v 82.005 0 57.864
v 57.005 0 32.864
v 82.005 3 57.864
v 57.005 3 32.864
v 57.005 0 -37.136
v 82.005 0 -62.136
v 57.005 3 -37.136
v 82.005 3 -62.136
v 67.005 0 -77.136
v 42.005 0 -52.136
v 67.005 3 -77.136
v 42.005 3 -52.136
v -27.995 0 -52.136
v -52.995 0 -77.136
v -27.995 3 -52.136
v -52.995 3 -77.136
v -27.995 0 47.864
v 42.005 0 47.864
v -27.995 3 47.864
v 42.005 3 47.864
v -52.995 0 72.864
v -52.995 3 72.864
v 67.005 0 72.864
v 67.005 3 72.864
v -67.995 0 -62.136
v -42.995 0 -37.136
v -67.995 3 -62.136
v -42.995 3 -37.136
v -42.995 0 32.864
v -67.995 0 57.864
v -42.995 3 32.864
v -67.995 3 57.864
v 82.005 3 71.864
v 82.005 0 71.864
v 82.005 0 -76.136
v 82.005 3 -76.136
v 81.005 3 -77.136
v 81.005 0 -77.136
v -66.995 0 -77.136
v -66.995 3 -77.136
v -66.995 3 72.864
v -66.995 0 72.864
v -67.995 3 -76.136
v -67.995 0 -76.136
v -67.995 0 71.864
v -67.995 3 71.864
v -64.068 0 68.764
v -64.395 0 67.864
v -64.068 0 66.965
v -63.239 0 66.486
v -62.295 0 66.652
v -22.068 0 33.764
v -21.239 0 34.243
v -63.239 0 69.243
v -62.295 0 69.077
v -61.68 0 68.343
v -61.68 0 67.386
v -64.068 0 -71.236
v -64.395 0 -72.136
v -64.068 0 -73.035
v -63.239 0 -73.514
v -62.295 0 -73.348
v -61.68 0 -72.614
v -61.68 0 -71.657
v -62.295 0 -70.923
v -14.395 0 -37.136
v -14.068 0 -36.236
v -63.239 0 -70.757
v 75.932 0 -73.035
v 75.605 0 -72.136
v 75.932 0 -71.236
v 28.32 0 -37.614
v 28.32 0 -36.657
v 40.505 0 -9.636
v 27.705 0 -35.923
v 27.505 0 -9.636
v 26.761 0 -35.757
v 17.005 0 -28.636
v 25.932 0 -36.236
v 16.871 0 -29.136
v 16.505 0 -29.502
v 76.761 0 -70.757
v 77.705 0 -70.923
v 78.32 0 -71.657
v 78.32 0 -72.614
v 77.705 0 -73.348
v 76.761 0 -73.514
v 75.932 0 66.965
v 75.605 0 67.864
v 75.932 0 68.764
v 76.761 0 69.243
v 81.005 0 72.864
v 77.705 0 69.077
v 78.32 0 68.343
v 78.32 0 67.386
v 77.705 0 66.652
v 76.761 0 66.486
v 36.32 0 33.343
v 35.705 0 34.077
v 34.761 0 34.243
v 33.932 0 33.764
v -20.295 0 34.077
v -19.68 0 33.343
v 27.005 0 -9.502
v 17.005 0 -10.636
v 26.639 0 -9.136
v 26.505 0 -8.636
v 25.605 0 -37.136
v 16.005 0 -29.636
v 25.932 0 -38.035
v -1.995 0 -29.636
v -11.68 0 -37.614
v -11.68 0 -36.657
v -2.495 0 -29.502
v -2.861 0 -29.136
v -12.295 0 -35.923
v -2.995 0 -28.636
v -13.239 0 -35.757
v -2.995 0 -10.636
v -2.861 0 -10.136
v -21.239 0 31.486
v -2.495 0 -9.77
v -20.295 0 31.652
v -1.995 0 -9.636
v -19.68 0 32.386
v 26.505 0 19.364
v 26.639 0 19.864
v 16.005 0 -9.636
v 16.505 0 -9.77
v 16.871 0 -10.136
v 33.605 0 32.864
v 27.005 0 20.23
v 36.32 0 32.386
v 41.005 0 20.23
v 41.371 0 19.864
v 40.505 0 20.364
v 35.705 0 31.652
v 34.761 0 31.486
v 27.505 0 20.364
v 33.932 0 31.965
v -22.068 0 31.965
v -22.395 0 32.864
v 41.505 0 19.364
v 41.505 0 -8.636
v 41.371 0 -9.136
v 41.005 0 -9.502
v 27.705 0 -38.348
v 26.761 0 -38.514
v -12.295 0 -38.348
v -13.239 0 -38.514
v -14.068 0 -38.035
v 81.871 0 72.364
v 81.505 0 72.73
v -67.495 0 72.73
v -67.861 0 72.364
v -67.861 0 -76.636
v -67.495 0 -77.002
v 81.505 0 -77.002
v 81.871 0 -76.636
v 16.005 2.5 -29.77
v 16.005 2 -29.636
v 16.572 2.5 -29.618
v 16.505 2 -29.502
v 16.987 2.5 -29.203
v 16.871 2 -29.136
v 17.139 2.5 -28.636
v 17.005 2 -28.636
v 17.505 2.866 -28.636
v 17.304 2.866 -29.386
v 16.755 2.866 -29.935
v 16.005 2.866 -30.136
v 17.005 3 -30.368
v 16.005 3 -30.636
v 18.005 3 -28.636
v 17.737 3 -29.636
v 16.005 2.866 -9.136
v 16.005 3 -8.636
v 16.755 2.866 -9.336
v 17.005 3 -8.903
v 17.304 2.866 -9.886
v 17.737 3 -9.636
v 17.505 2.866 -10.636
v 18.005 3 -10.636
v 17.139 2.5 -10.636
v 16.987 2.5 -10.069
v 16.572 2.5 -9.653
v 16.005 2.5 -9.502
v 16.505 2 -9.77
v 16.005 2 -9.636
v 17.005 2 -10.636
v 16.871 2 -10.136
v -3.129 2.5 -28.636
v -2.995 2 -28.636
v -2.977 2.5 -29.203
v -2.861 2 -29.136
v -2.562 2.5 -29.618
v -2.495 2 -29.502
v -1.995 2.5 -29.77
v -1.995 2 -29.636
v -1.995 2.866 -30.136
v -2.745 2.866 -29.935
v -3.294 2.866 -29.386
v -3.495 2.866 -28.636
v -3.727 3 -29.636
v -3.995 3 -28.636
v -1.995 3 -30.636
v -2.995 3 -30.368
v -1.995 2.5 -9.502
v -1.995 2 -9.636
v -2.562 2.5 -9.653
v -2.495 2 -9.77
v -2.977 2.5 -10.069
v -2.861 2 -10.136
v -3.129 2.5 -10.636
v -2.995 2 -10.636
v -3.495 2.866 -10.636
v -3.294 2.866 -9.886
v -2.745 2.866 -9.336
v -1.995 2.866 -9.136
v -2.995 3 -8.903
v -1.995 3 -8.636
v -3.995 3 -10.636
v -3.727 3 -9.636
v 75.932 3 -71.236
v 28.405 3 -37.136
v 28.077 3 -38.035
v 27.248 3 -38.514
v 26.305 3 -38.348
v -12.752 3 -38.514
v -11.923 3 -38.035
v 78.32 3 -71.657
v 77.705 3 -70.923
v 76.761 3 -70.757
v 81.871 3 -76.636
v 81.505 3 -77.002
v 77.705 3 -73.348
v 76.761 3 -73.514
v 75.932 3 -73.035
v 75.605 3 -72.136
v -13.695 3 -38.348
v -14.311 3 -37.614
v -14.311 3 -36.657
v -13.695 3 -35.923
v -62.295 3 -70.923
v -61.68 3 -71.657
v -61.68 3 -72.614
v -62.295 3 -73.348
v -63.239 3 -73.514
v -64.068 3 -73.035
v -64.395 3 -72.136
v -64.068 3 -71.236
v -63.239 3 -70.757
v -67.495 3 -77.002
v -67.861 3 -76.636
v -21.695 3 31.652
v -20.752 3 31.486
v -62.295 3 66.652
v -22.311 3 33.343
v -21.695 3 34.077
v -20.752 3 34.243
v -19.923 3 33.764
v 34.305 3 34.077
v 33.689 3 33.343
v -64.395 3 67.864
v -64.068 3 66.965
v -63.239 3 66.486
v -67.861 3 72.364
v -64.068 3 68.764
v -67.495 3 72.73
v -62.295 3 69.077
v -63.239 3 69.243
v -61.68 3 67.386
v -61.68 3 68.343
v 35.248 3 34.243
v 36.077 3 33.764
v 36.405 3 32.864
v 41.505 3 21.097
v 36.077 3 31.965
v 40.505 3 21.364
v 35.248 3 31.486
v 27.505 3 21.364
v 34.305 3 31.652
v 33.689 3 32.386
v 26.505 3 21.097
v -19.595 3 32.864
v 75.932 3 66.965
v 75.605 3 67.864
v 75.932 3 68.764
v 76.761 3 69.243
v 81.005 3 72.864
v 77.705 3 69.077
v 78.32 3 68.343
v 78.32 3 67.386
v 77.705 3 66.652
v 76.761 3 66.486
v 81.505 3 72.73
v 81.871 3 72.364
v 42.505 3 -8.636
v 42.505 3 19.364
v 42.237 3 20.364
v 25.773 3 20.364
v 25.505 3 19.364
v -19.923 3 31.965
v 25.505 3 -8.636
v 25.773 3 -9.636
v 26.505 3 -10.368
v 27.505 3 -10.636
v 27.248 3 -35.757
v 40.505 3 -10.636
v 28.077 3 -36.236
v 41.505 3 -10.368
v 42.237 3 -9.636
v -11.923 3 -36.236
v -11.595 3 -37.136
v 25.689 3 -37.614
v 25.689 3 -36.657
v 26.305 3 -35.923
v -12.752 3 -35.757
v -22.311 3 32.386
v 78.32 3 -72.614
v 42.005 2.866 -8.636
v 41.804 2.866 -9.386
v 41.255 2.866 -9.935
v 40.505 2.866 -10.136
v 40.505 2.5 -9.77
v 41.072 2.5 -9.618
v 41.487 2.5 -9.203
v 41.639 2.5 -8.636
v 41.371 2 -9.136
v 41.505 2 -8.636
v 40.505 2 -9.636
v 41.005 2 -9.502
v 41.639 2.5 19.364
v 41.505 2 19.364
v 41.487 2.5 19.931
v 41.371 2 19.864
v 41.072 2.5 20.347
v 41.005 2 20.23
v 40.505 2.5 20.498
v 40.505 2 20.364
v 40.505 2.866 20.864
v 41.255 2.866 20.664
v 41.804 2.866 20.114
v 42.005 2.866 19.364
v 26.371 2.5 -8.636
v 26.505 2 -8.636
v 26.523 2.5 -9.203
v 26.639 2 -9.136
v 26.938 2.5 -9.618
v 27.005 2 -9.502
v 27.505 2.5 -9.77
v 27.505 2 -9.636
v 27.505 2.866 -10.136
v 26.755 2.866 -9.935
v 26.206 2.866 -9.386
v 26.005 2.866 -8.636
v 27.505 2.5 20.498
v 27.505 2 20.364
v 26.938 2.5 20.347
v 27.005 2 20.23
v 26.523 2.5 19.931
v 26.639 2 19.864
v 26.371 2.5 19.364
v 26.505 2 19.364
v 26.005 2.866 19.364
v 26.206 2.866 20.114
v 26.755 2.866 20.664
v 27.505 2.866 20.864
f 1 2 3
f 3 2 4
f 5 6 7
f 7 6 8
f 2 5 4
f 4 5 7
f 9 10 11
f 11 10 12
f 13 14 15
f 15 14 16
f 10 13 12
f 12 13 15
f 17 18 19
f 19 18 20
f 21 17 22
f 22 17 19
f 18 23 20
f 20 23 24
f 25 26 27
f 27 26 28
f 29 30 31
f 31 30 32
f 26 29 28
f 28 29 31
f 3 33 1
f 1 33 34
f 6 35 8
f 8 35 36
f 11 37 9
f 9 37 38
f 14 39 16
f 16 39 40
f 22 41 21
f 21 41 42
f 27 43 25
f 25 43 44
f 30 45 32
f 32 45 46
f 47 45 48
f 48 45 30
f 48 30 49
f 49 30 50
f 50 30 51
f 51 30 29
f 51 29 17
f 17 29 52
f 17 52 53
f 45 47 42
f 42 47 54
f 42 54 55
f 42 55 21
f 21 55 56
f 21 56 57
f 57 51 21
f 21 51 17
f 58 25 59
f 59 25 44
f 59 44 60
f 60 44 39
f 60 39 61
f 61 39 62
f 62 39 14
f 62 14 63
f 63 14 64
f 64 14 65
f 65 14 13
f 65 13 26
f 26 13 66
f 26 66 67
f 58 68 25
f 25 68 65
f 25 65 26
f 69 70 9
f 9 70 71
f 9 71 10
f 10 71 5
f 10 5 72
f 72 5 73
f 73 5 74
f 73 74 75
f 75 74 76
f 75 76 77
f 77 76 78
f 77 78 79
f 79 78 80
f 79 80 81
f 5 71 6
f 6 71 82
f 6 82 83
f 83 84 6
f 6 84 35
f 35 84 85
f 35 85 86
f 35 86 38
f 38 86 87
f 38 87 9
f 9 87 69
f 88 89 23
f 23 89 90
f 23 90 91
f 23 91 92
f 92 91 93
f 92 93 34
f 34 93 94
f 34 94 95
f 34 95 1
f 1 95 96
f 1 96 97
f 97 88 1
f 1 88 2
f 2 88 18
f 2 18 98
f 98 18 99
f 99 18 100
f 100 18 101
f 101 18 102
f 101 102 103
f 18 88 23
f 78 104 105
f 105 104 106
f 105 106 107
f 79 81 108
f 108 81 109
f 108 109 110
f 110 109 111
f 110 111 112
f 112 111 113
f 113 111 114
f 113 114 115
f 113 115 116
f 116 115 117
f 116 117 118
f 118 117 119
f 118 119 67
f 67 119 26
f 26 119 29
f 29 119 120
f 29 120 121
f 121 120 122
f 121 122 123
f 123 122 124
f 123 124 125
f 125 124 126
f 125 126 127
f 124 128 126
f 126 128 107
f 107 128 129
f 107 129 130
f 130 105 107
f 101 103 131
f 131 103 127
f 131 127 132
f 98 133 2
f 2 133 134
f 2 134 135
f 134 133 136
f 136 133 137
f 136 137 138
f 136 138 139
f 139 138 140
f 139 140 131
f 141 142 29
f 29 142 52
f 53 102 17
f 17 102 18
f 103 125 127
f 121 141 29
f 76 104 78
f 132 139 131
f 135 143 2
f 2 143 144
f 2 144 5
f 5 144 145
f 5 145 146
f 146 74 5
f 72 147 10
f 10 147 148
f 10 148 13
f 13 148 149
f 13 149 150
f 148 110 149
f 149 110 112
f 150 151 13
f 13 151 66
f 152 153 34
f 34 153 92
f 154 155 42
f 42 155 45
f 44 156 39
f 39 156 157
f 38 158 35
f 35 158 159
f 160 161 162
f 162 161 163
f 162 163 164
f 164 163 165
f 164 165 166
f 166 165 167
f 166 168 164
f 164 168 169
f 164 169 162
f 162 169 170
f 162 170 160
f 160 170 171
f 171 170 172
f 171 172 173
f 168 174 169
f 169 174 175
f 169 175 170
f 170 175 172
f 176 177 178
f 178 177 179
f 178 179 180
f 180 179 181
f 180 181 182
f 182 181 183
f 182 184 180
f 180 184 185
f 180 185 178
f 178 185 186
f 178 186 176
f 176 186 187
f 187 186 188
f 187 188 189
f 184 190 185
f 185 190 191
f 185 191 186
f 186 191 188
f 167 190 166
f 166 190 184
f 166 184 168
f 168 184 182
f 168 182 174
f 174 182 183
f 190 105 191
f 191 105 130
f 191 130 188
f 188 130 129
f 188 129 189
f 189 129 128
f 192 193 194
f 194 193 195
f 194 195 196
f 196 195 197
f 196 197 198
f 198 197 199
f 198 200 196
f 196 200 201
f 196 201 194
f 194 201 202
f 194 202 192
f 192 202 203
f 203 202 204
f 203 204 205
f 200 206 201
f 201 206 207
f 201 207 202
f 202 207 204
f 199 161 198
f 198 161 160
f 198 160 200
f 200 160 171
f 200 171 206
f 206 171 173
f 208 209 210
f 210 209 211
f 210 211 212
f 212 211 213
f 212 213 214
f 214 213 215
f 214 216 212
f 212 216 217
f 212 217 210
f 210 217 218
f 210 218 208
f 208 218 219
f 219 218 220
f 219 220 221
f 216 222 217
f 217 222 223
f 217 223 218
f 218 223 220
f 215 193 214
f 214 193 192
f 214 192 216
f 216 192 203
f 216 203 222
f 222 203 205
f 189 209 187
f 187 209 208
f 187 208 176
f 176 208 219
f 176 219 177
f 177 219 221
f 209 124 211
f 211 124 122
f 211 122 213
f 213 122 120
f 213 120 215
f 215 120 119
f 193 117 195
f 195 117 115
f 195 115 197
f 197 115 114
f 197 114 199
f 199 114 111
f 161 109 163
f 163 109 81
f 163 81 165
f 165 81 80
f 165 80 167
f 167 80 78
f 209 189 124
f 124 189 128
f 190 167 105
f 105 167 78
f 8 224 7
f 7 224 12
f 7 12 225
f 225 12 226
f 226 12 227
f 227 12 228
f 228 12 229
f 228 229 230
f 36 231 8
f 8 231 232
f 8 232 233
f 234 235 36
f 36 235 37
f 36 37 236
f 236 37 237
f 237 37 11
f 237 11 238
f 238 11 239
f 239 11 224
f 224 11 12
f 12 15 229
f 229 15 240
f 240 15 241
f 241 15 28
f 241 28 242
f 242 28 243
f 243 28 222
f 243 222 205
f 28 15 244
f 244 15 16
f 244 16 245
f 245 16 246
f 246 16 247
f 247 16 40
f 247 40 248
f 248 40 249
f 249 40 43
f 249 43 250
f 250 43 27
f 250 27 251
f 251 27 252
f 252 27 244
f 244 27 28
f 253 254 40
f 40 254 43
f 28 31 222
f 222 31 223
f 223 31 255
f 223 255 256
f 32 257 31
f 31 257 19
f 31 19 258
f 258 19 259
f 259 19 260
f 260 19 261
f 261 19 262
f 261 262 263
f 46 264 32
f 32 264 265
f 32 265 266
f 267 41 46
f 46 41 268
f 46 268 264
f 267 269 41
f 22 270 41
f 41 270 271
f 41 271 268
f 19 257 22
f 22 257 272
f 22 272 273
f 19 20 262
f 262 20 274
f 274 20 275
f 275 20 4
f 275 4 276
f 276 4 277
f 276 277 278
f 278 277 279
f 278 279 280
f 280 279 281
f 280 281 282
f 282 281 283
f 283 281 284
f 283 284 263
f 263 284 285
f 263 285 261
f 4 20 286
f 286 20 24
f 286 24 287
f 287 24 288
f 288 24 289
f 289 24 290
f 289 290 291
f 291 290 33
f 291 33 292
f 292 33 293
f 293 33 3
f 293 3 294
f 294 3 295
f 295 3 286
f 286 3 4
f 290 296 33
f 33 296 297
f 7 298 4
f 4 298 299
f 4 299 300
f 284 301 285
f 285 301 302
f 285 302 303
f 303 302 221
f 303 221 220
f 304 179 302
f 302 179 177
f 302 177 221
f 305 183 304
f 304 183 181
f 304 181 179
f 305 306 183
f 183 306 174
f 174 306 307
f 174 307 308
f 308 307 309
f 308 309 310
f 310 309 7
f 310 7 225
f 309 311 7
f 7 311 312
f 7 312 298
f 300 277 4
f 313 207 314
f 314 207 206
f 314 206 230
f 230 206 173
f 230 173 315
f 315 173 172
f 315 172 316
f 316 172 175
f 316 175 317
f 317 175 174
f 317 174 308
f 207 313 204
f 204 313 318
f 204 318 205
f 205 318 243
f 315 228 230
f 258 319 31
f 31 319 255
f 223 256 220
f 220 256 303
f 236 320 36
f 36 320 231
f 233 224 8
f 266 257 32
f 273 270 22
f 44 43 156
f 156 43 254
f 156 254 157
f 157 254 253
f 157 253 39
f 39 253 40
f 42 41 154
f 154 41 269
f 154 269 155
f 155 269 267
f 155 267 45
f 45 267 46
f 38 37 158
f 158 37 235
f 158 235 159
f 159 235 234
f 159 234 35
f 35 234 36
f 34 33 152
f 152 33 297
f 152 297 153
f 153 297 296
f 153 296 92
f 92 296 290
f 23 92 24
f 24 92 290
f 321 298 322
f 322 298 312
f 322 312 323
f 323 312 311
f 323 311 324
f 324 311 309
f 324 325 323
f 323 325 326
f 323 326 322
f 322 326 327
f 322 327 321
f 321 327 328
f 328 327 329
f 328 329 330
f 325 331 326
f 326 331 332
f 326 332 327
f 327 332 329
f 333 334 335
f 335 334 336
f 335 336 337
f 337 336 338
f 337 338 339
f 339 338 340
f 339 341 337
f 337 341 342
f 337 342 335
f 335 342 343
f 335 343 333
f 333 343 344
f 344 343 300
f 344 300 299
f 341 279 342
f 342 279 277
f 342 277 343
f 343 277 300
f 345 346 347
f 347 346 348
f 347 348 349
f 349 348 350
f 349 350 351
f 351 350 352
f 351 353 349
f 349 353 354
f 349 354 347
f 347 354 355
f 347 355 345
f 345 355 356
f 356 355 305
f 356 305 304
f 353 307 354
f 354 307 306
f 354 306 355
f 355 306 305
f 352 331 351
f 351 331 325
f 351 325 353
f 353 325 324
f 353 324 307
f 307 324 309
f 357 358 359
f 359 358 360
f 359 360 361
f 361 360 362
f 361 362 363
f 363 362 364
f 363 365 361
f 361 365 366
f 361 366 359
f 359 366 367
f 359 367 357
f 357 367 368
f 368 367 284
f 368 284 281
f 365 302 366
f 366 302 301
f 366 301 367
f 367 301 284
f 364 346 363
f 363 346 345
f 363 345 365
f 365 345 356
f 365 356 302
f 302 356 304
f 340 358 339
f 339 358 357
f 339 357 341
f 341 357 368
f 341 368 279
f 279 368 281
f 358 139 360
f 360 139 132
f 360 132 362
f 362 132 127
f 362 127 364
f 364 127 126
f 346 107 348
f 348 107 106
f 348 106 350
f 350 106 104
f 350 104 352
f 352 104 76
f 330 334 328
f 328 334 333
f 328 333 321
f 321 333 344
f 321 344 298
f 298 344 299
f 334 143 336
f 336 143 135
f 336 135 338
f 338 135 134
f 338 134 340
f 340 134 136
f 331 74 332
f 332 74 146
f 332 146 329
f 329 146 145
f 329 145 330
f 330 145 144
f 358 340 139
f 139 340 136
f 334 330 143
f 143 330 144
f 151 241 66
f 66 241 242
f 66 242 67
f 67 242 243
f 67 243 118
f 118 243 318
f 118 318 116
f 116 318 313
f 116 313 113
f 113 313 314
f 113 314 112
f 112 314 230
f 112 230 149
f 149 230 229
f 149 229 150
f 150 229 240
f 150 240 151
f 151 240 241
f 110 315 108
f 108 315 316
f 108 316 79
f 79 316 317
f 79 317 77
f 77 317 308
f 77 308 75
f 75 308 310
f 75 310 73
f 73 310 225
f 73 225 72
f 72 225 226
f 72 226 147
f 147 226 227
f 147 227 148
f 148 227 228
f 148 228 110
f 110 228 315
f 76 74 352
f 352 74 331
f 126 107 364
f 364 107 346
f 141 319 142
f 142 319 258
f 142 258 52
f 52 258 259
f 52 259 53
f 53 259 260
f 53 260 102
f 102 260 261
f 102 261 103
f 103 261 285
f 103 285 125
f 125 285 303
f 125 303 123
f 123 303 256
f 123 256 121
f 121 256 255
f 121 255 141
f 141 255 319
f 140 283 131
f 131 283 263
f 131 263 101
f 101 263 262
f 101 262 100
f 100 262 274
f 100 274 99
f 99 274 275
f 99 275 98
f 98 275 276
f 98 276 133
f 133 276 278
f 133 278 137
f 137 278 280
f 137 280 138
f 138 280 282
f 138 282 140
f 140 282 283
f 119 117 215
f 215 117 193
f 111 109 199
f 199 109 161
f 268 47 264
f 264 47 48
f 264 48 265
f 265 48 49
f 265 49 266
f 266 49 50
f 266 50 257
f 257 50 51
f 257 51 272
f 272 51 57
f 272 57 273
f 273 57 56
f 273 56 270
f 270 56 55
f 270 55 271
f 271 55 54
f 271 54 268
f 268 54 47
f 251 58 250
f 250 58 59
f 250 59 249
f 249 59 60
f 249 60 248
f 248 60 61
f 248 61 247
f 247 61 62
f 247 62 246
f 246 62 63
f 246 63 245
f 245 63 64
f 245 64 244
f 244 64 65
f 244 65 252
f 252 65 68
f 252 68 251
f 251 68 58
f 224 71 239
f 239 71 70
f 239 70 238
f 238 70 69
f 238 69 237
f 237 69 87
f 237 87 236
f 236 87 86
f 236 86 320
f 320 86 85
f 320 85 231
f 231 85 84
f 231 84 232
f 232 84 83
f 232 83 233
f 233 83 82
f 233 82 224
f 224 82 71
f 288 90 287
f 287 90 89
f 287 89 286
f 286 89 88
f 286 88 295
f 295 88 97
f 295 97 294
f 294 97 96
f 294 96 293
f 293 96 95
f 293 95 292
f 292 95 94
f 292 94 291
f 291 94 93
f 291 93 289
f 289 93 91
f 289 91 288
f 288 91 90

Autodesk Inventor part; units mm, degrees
ref_plane "YZ Plane" through (0, 0, 0) normal (1, 0, 0) x (0, 1, 0)
ref_plane "XZ Plane" through (0, 0, 0) normal (0, 1, 0) x (-1, 0, 0)
ref_plane "XY Plane" through (0, 0, 0) normal (0, 0, 1) x (1, 0, 0)
sketch "Sketch2" plane through (0, 0, 0) normal (0, 1, 0) x (-1, 0, 0)
  line L0 (67.9954, 72.8645) -> (-82.0046, 72.8645)
  line L1 (-82.0046, 72.8645) -> (-82.0046, -77.1355)
  line L2 (-82.0046, -77.1355) -> (67.9954, -77.1355)
  line L3 (67.9954, -77.1355) -> (67.9954, 72.8645)
  circle A0 centre (62.9954, 67.8645) radius 1.4
  line L4 (67.9954, -2.1355) -> (-82.0046, -2.1355)
  line L5 (-7.0046, 72.8645) -> (-7.0046, -77.1355)
  circle A1 centre (62.9954, -72.1355) radius 1.4
  circle A2 centre (-77.0046, 67.8645) radius 1.4
  circle A3 centre (-77.0046, -72.1355) radius 1.4
  point P0 (0, 0)
  dimension "d0" = 150
  dimension "d1" = 150
  dimension "d2" = 5
  dimension "d3" = 5
  dimension "d43" = 2.8
extrude "Extrusion1" add sketch "Sketch2" along normal blind 3
sketch "Sketch4" plane through (0, 3, 0) normal (0, 1, 0) x (1, 0, 0)
  line L0 (-12.9954, 37.1355) -> (27.0046, 37.1355)
  line L1 (27.0046, 37.1355) -> (35.0046, -32.8645)
  line L2 (35.0046, -32.8645) -> (-20.9954, -32.8645)
  line L3 (-20.9954, -32.8645) -> (-12.9954, 37.1355)
  line L4 (7.0046, 37.1355) -> (7.0046, -32.8645)
  line L5 (82.0046, -72.8645) -> (82.0046, 77.1355) projected
  line L6 (-16.9954, 2.1355) -> (31.0046, 2.1355)
  line L7 (82.0046, 77.1355) -> (-67.9954, 77.1355) projected
  circle A0 centre (-12.9954, 37.1355) radius 1.4
  circle A1 centre (27.0046, 37.1355) radius 1.4
  circle A2 centre (35.0046, -32.8645) radius 1.4
  circle A3 centre (-20.9954, -32.8645) radius 1.4
  line L8 (26.5046, 9.6355) -> (41.5046, 9.6355)
  line L9 (41.5046, 9.6355) -> (41.5046, -20.3645)
  line L10 (41.5046, -20.3645) -> (26.5046, -20.3645)
  line L11 (26.5046, -20.3645) -> (26.5046, 9.6355)
  line L12 (26.5046, -5.3645) -> (41.5046, -5.3645)
  line L13 (34.0046, 9.6355) -> (34.0046, -20.3645)
  line L14 (-2.9954, 29.6355) -> (17.0046, 29.6355)
  line L15 (17.0046, 29.6355) -> (17.0046, 9.6355)
  line L16 (17.0046, 9.6355) -> (-2.9954, 9.6355)
  line L17 (-2.9954, 9.6355) -> (-2.9954, 29.6355)
  point P0 (0, 0)
  dimension "d17" = 40
  dimension "d18" = 56
  dimension "d19" = 75
  dimension "d20" = 75
  dimension "d21" = 2.8
  dimension "d22" = 2.8
  dimension "d23" = 2.8
  dimension "d24" = 2.8
  dimension "d45" = 70
  dimension "d51" = 15
  dimension "d52" = 30
  dimension "d53" = 27.5
  dimension "d54" = 1
  dimension "d68" = 10
  dimension "d69" = 10
  dimension "d70" = 20
extrude "Extrusion6" cut sketch "Sketch4" against normal through all contours L3 A0 L0 | L0 A0 L3 | A1 L1 L0 | L0 L1 A1 | L14 L15 L16 L4 | L4 L16 L17 L14 | A3 L2 L3 | L3 L2 A3 | L11 L8 L1 L6 | L6 L1 L12 L11 | L8 L13 L12 L1 | A2 L1 L2 | L2 L1 A2 | L12 L1 L10 L11 | L8 L9 L12 L13 | L12 L13 L10 L1 | L12 L9 L10 L13
fillet "Fillet5" radius 1 20 edges at (26.5046, 3, 5.3645) (34.0046, 3, -9.6355) (41.5046, 3, 5.3645) (34.0046, 3, 20.3645) (82.0046, 1.5, 72.8645) (82.0046, 1.5, -77.1355) (-67.9954, 1.5, 72.8645) (-67.9954, 1.5, -77.1355) (41.5046, 1.5, -9.6355) (26.5046, 1.5, -9.6355) (26.5046, 1.5, 20.3645) (41.5046, 1.5, 20.3645) (-2.9954, 3, -19.6355) (7.0046, 3, -29.6355) (-2.9954, 1.5, -29.6355) (7.0046, 3, -9.6355) (17.0046, 3, -19.6355) (17.0046, 1.5, -9.6355) (-2.9954, 1.5, -9.6355) (17.0046, 1.5, -29.6355)
sketch "Sketch8" plane through (0, 3, 0) normal (0, 1, 0) x (1, 0, 0)
  line L0 (-67.9954, 76.1355) -> (-67.9954, -71.8645) projected
  line L1 (-67.9954, 62.1355) -> (-42.9954, 37.1355)
  line L2 (-42.9954, 37.1355) -> (-42.9954, -32.8645)
  line L3 (-42.9954, -32.8645) -> (-67.9954, -57.8645)
  line L4 (81.0046, 77.1355) -> (-66.9954, 77.1355) projected
  line L5 (7.0046, 77.1355) -> (7.0046, -72.8645)
  line L6 (-66.9954, -72.8645) -> (81.0046, -72.8645) projected
  line L7 (82.0046, 62.1355) -> (57.0046, 37.1355)
  line L8 (57.0046, 37.1355) -> (57.0046, -32.8645)
  line L9 (57.0046, -32.8645) -> (82.0046, -57.8645)
  line L10 (-52.9954, 77.1355) -> (-27.9954, 52.1355)
  line L11 (-27.9954, 52.1355) -> (42.0046, 52.1355)
  line L12 (42.0046, 52.1355) -> (67.0046, 77.1355)
  line L13 (-52.9954, -72.8645) -> (-27.9954, -47.8645)
  line L14 (-27.9954, -47.8645) -> (42.0046, -47.8645)
  line L15 (42.0046, -47.8645) -> (67.0046, -72.8645)
  line L16 (82.0046, -71.8645) -> (82.0046, 76.1355) projected
  point P0 (0, 0)
  dimension "d56" = 25
  dimension "d57" = 15
  dimension "d58" = 15
  dimension "d59" = 25
  dimension "d60" = 25
  dimension "d61" = 15
  dimension "d62" = 15
  dimension "d63" = 15
  dimension "d64" = 25
  dimension "d65" = 25
extrude "Extrusion7" cut sketch "Sketch8" against normal through all
equation "\"d1\" = d0"
equation "\"d22\" = d21"
equation "\"d23\" = d21"
equation "\"d24\" = d21"
properties part number "agv_nano_base"
